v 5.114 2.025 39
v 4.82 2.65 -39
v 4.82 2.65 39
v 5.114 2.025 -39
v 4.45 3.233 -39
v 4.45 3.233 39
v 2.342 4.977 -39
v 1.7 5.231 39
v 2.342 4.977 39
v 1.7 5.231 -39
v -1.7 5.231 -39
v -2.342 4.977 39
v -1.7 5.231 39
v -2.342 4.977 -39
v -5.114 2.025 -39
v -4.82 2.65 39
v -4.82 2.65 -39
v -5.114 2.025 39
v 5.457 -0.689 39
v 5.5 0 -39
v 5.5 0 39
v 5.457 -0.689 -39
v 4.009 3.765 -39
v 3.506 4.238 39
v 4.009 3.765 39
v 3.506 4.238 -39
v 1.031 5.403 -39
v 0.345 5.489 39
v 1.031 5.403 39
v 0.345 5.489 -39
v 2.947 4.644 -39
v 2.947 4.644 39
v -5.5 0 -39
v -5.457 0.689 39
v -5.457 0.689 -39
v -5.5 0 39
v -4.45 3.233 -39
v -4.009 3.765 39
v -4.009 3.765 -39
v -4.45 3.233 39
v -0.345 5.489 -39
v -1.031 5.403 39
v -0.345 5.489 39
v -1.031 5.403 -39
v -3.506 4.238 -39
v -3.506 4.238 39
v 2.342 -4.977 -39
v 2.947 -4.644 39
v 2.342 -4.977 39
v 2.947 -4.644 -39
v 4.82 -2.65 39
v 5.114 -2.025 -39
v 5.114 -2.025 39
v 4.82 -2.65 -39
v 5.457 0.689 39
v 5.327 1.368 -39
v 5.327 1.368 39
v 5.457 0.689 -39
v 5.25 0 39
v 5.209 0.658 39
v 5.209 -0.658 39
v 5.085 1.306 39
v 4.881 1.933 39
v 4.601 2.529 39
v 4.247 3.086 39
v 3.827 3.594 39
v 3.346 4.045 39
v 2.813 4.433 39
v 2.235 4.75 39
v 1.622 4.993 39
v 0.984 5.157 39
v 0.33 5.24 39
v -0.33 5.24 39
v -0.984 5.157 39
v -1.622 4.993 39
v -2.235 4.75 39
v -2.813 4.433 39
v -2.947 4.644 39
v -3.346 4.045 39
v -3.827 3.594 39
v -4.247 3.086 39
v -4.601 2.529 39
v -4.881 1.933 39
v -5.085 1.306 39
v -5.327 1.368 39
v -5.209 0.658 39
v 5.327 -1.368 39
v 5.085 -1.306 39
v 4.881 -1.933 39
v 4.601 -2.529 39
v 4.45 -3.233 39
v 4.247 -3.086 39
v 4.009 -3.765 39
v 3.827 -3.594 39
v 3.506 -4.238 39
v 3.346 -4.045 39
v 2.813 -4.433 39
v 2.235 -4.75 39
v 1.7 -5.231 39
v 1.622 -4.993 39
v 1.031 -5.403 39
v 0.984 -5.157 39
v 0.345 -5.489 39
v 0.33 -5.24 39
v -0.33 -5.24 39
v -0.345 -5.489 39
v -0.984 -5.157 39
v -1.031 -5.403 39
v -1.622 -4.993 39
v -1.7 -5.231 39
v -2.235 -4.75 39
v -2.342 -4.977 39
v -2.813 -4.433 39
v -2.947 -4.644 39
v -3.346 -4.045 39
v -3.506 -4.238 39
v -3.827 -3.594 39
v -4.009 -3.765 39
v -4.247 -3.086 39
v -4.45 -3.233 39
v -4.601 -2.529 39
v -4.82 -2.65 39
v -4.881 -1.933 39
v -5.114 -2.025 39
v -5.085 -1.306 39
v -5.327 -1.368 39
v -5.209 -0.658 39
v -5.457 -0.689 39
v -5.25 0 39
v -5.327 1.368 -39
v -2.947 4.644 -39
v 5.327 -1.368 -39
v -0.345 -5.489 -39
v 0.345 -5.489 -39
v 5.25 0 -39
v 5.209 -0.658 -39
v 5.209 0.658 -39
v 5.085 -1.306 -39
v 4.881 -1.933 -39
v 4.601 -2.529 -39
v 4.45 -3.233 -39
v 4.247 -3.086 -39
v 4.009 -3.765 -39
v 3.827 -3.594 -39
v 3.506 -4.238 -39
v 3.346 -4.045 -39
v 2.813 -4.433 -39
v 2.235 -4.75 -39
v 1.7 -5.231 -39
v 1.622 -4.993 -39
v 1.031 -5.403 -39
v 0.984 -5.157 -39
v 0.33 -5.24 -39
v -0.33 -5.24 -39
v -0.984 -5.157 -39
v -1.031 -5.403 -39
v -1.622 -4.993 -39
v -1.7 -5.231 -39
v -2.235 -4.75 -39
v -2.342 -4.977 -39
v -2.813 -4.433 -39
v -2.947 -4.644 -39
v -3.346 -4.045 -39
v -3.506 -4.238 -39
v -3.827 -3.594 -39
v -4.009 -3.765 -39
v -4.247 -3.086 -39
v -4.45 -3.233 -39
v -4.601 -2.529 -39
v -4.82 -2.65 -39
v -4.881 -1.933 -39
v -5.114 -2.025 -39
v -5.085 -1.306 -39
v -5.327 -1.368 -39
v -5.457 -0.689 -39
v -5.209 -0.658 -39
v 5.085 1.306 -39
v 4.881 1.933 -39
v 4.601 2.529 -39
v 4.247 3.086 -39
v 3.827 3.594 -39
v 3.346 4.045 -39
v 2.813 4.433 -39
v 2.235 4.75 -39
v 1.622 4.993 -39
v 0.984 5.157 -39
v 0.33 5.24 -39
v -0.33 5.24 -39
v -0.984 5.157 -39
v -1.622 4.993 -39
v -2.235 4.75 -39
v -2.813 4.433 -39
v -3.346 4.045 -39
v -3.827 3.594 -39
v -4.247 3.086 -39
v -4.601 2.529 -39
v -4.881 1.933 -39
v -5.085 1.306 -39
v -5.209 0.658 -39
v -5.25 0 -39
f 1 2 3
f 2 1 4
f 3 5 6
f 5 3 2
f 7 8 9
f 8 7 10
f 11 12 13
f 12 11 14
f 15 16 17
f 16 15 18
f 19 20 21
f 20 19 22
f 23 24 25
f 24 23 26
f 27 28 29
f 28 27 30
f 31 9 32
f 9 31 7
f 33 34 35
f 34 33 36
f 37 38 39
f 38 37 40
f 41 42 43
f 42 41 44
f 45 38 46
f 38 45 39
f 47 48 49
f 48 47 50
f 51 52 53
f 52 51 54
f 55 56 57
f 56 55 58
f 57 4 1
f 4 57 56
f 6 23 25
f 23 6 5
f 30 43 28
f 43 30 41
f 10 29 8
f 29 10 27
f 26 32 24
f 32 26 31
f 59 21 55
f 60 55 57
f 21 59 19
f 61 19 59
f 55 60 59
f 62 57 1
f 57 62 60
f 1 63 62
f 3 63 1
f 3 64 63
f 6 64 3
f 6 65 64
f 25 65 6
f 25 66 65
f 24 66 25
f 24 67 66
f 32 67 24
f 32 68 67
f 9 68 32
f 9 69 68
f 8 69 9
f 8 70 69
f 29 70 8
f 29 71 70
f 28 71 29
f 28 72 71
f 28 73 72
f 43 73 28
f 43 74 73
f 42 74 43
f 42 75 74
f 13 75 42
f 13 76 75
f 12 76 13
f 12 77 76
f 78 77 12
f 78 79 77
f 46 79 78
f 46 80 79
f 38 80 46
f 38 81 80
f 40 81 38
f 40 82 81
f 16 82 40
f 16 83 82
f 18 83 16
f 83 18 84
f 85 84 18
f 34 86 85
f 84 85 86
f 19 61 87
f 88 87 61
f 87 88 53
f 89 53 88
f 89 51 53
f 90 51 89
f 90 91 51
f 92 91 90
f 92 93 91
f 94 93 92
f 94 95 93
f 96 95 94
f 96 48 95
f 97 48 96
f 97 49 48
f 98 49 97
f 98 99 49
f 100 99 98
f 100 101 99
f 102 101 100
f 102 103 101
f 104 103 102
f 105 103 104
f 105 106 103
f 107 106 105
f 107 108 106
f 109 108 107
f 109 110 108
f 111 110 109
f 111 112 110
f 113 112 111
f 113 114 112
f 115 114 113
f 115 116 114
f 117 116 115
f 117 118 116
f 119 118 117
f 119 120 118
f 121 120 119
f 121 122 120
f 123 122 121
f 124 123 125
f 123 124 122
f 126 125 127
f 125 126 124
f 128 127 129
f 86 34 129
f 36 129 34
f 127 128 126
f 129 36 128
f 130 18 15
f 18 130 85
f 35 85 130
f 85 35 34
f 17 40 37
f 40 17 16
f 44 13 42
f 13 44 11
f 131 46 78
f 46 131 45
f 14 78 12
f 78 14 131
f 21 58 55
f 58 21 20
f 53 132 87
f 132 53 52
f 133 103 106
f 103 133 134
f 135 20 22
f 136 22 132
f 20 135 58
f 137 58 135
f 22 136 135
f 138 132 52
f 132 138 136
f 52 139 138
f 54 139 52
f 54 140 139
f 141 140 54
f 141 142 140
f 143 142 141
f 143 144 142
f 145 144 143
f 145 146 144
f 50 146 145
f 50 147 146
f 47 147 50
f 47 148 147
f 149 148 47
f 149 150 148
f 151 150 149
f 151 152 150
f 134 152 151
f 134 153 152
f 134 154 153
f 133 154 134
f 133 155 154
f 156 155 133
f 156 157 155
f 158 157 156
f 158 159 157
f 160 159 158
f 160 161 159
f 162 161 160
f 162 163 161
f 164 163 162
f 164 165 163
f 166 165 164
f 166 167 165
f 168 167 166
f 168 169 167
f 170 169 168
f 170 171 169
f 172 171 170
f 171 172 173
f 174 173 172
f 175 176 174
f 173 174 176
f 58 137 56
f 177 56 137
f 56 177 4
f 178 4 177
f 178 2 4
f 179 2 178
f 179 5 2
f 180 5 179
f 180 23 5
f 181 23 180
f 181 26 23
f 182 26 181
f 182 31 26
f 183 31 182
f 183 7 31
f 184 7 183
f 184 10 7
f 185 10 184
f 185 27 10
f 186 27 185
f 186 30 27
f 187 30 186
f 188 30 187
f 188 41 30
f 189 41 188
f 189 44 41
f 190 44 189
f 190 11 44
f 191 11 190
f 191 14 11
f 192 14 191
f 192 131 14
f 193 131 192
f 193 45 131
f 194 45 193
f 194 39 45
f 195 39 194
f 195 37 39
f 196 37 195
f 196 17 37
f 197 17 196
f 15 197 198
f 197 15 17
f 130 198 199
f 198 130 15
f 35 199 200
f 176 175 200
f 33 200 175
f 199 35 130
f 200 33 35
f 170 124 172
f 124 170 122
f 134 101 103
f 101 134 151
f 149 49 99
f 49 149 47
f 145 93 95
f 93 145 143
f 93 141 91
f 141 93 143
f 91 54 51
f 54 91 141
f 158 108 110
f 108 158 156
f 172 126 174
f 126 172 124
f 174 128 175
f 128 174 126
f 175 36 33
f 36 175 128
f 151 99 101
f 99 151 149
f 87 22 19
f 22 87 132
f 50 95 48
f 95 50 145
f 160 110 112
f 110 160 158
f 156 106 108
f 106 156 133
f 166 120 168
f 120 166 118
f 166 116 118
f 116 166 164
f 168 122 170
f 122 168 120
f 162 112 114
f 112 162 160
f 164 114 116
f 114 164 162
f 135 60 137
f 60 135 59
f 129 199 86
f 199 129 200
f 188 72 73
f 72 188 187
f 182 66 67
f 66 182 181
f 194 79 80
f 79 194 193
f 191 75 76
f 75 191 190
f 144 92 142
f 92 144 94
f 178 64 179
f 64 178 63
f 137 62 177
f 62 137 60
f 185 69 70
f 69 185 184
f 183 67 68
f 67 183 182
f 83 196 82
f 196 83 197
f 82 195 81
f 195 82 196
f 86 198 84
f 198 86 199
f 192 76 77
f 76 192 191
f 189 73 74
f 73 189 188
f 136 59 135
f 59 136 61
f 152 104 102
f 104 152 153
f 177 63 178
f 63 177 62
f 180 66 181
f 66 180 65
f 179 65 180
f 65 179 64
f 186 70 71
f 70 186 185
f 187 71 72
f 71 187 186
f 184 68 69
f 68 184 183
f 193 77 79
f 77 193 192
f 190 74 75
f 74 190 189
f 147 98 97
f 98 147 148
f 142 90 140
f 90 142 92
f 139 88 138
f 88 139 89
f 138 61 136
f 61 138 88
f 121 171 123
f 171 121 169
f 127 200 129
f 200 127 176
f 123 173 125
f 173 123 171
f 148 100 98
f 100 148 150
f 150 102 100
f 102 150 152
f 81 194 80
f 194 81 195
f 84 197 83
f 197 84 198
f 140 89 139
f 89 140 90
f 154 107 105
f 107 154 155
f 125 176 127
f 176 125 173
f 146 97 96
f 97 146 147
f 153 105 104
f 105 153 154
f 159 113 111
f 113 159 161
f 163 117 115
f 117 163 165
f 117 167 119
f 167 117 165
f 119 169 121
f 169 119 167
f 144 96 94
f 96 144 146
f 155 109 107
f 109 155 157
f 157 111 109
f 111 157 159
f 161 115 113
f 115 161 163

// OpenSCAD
$fn = 50;


difference() {
	union() {
		translate(v = [0, 0, -39.0000000000]) {
			cylinder(h = 78, r = 5.5000000000);
		}
	}
	union() {
		translate(v = [0, 0, -100.0000000000]) {
			cylinder(h = 200, r = 5.2500000000);
		}
	}
}
